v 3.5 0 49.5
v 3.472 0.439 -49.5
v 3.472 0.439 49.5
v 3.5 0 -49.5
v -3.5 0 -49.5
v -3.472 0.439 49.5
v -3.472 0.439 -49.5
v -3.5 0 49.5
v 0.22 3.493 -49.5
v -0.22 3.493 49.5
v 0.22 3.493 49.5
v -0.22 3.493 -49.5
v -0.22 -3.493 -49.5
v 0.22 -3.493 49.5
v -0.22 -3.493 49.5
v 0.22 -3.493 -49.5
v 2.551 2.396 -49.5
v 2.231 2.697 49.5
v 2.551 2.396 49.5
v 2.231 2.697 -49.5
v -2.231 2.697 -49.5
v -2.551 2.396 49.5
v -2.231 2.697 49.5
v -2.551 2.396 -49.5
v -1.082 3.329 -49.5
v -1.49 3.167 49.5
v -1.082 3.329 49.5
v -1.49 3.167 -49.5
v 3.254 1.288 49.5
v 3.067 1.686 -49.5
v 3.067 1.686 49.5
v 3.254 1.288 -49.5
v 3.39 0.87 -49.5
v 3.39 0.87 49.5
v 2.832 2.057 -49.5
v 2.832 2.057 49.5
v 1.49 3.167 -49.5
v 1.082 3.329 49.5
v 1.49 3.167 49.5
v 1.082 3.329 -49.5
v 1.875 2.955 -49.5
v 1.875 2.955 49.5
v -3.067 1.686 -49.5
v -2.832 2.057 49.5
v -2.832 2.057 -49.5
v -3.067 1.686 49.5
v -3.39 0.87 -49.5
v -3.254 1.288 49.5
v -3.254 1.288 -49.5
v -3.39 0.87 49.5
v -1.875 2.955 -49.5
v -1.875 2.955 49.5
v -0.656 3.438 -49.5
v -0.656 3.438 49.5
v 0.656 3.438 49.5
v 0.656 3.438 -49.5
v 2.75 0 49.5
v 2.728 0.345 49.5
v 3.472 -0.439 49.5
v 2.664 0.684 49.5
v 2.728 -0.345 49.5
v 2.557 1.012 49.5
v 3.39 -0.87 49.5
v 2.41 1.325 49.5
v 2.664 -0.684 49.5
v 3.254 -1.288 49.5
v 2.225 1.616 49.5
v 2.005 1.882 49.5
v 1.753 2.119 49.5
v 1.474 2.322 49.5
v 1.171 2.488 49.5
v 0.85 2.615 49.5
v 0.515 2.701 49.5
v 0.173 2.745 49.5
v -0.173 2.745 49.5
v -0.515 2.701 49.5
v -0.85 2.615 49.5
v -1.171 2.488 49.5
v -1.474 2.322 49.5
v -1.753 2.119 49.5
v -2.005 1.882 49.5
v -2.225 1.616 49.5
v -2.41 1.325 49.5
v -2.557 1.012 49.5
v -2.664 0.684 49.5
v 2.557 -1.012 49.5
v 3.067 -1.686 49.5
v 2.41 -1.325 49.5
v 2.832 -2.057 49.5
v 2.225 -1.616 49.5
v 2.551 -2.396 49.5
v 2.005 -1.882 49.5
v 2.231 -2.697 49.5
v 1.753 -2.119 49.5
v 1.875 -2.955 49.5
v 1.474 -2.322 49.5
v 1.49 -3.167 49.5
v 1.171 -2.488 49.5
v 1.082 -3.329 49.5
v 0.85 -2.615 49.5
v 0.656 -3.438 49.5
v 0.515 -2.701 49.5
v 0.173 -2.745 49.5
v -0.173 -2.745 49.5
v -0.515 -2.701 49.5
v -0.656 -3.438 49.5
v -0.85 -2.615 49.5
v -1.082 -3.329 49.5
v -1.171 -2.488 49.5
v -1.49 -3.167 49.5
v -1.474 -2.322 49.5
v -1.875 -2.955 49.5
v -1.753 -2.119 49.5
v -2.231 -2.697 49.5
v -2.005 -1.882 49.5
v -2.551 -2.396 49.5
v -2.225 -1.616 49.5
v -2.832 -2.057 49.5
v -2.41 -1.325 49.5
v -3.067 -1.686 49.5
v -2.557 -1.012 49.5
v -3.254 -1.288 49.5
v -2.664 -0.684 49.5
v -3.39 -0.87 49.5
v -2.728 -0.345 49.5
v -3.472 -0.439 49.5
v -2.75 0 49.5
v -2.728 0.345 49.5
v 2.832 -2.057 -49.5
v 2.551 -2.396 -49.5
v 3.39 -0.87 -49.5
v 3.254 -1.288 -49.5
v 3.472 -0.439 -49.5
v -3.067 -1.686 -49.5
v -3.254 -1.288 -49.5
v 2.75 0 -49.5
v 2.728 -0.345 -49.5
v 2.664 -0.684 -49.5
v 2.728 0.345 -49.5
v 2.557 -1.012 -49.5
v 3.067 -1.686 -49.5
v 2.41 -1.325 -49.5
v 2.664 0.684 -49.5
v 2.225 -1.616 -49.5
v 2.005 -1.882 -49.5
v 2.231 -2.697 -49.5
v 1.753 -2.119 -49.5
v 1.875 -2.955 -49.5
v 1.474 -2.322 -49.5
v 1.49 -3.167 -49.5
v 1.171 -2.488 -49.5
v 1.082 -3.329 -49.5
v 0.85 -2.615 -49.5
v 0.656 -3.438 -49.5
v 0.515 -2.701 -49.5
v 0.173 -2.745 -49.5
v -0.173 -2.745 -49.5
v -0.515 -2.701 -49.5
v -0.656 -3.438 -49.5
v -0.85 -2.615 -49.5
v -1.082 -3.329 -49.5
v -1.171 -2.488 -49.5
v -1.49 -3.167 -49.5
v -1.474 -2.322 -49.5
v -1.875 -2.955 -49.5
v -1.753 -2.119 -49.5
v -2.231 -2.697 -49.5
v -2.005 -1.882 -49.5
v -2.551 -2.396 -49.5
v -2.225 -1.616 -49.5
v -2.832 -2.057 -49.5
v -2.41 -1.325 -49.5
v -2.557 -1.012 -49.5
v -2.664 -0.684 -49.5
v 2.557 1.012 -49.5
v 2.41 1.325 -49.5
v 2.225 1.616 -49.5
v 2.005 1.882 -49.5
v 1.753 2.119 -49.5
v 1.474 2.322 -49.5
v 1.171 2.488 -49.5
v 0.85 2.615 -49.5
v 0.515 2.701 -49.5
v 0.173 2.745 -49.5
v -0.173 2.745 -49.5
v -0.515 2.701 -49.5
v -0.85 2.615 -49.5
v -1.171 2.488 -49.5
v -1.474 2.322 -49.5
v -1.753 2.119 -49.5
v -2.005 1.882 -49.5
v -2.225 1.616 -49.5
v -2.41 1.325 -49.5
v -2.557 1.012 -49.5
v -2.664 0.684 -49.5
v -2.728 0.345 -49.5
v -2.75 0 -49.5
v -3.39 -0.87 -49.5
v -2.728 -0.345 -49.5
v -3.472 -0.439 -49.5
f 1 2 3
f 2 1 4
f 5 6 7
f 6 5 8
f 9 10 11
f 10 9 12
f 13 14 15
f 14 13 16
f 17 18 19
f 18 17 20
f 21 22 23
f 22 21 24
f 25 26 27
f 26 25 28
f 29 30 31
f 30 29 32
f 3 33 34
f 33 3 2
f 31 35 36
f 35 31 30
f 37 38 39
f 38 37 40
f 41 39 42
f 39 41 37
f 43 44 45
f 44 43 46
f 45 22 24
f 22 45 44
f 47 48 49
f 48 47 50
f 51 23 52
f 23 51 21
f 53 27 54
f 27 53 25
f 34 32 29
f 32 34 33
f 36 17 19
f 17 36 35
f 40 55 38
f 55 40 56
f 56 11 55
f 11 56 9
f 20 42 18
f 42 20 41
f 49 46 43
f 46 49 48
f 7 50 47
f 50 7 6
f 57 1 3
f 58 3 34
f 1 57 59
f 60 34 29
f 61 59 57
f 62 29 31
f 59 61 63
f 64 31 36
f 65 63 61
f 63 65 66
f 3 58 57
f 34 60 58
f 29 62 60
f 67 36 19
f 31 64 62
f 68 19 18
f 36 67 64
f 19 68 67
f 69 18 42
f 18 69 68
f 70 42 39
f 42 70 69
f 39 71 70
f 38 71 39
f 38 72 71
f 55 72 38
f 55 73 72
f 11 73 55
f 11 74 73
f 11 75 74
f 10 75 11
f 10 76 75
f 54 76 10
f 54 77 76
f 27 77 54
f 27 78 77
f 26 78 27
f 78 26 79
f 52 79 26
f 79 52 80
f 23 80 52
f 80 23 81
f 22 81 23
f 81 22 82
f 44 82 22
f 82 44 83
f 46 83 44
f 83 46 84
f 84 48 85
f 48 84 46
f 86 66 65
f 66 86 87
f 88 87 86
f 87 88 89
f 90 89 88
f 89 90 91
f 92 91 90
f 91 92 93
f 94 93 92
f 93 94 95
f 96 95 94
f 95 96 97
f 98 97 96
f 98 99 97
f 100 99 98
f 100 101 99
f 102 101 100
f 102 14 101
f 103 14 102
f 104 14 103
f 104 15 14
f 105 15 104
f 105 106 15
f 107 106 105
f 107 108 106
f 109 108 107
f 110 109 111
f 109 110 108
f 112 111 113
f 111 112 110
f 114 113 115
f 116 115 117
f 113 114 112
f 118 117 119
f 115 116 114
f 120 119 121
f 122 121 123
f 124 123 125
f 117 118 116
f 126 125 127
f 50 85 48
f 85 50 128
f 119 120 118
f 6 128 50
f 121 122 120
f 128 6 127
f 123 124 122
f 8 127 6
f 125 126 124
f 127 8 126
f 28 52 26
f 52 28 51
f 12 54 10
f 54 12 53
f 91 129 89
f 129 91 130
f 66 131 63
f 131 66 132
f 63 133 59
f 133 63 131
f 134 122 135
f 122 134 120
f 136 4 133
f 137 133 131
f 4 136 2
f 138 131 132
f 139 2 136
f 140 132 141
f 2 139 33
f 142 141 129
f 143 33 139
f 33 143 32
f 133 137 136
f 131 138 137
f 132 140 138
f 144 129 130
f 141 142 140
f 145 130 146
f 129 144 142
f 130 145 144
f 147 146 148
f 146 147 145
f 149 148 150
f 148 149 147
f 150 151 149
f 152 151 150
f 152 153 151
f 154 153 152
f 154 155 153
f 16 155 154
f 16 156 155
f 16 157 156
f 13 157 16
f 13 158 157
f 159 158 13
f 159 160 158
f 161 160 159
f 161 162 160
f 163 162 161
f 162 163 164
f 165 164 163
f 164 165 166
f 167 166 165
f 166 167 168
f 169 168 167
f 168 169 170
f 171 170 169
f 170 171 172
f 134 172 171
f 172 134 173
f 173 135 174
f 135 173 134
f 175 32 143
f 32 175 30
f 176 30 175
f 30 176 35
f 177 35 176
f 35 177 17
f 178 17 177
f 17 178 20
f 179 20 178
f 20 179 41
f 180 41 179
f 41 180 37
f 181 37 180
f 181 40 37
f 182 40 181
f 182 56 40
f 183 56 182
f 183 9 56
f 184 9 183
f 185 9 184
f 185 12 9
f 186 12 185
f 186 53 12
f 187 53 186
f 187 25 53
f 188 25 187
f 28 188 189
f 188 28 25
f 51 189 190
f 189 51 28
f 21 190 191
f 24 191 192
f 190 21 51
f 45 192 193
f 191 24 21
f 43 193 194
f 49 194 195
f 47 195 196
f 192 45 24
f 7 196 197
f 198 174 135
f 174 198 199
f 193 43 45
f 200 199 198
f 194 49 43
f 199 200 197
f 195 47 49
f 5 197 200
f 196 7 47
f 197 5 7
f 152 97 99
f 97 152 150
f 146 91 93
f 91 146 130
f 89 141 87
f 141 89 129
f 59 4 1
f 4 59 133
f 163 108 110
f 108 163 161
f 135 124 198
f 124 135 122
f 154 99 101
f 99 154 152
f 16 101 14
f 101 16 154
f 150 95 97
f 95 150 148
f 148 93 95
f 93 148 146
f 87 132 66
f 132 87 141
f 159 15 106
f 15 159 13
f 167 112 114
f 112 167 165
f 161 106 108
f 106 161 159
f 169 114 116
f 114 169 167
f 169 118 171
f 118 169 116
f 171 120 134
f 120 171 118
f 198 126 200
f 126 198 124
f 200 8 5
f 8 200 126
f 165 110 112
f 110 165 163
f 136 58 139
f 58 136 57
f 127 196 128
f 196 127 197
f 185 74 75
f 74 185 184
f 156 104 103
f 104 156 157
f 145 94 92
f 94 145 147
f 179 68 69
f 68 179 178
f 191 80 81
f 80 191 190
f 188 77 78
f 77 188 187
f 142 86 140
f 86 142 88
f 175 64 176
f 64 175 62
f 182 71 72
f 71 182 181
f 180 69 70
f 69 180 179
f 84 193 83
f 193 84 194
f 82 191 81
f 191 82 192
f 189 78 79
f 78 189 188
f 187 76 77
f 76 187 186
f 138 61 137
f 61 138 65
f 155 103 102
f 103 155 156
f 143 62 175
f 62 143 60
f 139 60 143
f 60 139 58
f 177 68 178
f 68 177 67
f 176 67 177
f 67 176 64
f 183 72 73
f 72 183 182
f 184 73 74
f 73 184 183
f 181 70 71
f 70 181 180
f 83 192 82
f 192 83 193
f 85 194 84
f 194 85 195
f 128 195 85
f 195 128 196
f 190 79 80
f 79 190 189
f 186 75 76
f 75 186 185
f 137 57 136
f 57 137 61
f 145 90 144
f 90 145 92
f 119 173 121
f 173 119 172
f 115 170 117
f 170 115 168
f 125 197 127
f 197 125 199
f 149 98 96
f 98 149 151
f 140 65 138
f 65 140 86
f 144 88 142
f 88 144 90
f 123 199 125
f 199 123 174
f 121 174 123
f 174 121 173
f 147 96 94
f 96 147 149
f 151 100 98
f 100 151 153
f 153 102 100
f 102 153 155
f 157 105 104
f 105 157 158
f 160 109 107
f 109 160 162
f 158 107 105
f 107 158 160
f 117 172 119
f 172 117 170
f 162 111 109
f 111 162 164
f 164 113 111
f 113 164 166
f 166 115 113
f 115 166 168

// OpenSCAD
$fn = 50;


difference() {
	union() {
		translate(v = [0, 0, -49.5000000000]) {
			cylinder(h = 99, r = 3.5000000000);
		}
	}
	union() {
		translate(v = [0, 0, -100.0000000000]) {
			cylinder(h = 200, r = 2.7500000000);
		}
	}
}
